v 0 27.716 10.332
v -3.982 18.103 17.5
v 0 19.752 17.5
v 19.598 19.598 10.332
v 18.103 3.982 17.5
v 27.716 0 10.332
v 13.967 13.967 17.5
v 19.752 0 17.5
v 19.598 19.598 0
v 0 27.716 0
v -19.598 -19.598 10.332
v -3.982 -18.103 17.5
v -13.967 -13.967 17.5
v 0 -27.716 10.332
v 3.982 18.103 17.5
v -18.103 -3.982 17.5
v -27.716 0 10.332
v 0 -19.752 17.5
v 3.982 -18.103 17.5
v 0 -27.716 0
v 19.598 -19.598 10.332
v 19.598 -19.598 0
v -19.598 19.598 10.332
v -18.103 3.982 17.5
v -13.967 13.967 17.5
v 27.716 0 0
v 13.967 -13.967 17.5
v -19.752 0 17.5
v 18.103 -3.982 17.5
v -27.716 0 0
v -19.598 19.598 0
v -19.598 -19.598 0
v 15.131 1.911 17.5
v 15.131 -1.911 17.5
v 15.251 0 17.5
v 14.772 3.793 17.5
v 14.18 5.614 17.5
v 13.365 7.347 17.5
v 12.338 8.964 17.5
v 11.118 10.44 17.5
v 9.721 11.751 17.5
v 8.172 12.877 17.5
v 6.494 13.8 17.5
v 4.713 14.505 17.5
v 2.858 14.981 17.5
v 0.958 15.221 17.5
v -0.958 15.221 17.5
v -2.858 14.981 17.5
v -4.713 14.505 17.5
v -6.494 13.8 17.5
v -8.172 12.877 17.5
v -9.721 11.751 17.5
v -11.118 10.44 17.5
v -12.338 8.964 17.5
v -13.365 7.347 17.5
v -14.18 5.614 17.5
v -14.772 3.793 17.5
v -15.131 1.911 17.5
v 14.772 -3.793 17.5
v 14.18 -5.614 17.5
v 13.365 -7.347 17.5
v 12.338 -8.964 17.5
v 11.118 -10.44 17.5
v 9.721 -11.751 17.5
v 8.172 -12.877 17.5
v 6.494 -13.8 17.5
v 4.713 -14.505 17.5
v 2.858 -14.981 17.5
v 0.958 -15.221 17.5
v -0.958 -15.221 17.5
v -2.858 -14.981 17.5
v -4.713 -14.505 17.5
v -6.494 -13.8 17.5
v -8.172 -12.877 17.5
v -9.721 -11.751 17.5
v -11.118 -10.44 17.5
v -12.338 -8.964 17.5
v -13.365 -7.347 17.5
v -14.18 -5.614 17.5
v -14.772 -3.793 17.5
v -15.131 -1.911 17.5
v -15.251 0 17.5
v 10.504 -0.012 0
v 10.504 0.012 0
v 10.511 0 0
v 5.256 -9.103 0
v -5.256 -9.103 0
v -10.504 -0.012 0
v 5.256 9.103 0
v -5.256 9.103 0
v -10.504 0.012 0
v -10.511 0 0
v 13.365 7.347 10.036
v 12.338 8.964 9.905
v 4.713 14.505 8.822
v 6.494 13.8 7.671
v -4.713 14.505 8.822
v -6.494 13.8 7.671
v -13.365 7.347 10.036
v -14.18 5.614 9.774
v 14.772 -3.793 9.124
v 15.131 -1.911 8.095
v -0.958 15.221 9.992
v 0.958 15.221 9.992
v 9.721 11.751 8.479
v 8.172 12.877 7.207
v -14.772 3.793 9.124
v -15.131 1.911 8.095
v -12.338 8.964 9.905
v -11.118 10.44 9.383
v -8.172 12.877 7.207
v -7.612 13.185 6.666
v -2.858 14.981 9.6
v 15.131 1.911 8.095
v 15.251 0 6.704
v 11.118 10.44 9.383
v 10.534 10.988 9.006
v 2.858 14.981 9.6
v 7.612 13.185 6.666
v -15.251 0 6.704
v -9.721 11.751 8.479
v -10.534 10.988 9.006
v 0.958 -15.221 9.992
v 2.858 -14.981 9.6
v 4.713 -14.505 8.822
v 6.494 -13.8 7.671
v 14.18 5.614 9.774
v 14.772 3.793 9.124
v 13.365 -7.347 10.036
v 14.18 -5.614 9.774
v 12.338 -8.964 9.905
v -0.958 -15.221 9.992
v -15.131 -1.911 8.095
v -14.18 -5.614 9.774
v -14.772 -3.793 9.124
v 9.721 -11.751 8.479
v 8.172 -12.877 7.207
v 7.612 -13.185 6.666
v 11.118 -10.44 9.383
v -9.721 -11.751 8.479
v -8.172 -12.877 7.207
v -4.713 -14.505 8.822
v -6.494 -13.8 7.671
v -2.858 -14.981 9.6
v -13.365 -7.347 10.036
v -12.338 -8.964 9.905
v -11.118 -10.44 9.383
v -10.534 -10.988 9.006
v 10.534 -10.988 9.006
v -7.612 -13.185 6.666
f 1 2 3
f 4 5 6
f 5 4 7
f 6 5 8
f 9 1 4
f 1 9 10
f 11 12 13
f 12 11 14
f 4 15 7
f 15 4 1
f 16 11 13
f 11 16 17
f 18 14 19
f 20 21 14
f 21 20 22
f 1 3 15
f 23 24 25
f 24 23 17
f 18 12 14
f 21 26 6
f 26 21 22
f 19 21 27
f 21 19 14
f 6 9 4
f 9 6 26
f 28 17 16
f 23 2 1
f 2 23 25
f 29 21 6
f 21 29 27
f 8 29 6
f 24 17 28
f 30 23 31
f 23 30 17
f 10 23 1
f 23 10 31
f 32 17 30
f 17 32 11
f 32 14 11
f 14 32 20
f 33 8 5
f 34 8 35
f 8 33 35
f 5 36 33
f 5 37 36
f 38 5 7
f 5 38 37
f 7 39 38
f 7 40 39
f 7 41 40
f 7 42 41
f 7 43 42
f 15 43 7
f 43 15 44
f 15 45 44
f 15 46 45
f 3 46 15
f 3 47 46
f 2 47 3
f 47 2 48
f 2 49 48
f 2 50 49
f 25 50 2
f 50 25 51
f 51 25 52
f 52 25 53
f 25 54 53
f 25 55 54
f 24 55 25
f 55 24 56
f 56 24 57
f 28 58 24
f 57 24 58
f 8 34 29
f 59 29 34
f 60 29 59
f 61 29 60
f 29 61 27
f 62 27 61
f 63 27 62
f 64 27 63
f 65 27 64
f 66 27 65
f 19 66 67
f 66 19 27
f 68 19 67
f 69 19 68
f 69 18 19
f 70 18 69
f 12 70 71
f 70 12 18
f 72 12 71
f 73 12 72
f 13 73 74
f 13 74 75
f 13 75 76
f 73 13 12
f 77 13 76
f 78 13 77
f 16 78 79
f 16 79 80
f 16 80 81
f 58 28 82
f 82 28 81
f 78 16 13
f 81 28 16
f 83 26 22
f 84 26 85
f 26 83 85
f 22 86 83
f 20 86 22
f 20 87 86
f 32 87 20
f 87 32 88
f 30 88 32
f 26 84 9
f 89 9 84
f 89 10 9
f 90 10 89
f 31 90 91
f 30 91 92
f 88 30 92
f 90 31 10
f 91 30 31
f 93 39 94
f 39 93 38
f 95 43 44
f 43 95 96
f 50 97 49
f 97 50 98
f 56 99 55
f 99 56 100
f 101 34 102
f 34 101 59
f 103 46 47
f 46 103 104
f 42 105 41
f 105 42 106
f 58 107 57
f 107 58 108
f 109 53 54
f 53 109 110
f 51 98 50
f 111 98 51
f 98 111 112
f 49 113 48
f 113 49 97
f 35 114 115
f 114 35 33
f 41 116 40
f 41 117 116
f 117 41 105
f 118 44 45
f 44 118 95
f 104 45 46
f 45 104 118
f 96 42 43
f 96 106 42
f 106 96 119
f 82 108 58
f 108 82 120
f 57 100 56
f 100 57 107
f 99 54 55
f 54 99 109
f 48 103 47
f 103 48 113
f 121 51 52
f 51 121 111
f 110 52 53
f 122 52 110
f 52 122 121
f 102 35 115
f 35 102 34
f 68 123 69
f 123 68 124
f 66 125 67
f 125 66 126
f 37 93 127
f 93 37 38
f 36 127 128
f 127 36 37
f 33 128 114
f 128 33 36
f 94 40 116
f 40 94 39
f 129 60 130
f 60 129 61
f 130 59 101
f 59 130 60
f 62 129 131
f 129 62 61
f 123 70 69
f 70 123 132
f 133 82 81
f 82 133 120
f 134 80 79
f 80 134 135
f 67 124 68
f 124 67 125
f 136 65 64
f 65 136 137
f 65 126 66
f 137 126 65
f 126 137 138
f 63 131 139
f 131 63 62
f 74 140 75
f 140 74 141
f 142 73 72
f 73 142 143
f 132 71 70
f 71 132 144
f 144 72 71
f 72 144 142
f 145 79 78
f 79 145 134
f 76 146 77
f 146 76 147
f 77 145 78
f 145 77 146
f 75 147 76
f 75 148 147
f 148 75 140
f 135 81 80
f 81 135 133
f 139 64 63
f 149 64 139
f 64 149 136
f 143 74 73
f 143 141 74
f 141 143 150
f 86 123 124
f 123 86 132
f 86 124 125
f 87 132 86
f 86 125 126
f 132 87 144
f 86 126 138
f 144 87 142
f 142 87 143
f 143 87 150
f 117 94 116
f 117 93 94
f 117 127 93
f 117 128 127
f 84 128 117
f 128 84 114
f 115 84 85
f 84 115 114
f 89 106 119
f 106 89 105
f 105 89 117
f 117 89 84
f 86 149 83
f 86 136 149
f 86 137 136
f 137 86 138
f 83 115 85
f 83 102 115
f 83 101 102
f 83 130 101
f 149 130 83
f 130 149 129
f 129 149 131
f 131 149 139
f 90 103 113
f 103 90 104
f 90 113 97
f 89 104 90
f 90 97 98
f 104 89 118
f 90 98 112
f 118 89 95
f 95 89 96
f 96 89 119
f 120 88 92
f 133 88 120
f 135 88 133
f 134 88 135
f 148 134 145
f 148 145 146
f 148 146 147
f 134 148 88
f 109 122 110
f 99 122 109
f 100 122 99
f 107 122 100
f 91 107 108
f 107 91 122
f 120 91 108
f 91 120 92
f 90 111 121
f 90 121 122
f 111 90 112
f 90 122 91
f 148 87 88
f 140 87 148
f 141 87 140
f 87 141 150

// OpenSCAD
include <handler_models.scad>

// similar to https://www.thingiverse.com/thing:3486254
//handler_base_detail=8; handler_base_h=17.5; handler_base_r=30; tolerance=1.01;

// tight base
//handler_base_detail=50; handler_base_h=17.5; handler_base_r=25; tolerance=1;

handler_base(handler_base_h, handler_base_r, handler_r, tolerance=tolerance, handler_base_detail=handler_base_detail);
